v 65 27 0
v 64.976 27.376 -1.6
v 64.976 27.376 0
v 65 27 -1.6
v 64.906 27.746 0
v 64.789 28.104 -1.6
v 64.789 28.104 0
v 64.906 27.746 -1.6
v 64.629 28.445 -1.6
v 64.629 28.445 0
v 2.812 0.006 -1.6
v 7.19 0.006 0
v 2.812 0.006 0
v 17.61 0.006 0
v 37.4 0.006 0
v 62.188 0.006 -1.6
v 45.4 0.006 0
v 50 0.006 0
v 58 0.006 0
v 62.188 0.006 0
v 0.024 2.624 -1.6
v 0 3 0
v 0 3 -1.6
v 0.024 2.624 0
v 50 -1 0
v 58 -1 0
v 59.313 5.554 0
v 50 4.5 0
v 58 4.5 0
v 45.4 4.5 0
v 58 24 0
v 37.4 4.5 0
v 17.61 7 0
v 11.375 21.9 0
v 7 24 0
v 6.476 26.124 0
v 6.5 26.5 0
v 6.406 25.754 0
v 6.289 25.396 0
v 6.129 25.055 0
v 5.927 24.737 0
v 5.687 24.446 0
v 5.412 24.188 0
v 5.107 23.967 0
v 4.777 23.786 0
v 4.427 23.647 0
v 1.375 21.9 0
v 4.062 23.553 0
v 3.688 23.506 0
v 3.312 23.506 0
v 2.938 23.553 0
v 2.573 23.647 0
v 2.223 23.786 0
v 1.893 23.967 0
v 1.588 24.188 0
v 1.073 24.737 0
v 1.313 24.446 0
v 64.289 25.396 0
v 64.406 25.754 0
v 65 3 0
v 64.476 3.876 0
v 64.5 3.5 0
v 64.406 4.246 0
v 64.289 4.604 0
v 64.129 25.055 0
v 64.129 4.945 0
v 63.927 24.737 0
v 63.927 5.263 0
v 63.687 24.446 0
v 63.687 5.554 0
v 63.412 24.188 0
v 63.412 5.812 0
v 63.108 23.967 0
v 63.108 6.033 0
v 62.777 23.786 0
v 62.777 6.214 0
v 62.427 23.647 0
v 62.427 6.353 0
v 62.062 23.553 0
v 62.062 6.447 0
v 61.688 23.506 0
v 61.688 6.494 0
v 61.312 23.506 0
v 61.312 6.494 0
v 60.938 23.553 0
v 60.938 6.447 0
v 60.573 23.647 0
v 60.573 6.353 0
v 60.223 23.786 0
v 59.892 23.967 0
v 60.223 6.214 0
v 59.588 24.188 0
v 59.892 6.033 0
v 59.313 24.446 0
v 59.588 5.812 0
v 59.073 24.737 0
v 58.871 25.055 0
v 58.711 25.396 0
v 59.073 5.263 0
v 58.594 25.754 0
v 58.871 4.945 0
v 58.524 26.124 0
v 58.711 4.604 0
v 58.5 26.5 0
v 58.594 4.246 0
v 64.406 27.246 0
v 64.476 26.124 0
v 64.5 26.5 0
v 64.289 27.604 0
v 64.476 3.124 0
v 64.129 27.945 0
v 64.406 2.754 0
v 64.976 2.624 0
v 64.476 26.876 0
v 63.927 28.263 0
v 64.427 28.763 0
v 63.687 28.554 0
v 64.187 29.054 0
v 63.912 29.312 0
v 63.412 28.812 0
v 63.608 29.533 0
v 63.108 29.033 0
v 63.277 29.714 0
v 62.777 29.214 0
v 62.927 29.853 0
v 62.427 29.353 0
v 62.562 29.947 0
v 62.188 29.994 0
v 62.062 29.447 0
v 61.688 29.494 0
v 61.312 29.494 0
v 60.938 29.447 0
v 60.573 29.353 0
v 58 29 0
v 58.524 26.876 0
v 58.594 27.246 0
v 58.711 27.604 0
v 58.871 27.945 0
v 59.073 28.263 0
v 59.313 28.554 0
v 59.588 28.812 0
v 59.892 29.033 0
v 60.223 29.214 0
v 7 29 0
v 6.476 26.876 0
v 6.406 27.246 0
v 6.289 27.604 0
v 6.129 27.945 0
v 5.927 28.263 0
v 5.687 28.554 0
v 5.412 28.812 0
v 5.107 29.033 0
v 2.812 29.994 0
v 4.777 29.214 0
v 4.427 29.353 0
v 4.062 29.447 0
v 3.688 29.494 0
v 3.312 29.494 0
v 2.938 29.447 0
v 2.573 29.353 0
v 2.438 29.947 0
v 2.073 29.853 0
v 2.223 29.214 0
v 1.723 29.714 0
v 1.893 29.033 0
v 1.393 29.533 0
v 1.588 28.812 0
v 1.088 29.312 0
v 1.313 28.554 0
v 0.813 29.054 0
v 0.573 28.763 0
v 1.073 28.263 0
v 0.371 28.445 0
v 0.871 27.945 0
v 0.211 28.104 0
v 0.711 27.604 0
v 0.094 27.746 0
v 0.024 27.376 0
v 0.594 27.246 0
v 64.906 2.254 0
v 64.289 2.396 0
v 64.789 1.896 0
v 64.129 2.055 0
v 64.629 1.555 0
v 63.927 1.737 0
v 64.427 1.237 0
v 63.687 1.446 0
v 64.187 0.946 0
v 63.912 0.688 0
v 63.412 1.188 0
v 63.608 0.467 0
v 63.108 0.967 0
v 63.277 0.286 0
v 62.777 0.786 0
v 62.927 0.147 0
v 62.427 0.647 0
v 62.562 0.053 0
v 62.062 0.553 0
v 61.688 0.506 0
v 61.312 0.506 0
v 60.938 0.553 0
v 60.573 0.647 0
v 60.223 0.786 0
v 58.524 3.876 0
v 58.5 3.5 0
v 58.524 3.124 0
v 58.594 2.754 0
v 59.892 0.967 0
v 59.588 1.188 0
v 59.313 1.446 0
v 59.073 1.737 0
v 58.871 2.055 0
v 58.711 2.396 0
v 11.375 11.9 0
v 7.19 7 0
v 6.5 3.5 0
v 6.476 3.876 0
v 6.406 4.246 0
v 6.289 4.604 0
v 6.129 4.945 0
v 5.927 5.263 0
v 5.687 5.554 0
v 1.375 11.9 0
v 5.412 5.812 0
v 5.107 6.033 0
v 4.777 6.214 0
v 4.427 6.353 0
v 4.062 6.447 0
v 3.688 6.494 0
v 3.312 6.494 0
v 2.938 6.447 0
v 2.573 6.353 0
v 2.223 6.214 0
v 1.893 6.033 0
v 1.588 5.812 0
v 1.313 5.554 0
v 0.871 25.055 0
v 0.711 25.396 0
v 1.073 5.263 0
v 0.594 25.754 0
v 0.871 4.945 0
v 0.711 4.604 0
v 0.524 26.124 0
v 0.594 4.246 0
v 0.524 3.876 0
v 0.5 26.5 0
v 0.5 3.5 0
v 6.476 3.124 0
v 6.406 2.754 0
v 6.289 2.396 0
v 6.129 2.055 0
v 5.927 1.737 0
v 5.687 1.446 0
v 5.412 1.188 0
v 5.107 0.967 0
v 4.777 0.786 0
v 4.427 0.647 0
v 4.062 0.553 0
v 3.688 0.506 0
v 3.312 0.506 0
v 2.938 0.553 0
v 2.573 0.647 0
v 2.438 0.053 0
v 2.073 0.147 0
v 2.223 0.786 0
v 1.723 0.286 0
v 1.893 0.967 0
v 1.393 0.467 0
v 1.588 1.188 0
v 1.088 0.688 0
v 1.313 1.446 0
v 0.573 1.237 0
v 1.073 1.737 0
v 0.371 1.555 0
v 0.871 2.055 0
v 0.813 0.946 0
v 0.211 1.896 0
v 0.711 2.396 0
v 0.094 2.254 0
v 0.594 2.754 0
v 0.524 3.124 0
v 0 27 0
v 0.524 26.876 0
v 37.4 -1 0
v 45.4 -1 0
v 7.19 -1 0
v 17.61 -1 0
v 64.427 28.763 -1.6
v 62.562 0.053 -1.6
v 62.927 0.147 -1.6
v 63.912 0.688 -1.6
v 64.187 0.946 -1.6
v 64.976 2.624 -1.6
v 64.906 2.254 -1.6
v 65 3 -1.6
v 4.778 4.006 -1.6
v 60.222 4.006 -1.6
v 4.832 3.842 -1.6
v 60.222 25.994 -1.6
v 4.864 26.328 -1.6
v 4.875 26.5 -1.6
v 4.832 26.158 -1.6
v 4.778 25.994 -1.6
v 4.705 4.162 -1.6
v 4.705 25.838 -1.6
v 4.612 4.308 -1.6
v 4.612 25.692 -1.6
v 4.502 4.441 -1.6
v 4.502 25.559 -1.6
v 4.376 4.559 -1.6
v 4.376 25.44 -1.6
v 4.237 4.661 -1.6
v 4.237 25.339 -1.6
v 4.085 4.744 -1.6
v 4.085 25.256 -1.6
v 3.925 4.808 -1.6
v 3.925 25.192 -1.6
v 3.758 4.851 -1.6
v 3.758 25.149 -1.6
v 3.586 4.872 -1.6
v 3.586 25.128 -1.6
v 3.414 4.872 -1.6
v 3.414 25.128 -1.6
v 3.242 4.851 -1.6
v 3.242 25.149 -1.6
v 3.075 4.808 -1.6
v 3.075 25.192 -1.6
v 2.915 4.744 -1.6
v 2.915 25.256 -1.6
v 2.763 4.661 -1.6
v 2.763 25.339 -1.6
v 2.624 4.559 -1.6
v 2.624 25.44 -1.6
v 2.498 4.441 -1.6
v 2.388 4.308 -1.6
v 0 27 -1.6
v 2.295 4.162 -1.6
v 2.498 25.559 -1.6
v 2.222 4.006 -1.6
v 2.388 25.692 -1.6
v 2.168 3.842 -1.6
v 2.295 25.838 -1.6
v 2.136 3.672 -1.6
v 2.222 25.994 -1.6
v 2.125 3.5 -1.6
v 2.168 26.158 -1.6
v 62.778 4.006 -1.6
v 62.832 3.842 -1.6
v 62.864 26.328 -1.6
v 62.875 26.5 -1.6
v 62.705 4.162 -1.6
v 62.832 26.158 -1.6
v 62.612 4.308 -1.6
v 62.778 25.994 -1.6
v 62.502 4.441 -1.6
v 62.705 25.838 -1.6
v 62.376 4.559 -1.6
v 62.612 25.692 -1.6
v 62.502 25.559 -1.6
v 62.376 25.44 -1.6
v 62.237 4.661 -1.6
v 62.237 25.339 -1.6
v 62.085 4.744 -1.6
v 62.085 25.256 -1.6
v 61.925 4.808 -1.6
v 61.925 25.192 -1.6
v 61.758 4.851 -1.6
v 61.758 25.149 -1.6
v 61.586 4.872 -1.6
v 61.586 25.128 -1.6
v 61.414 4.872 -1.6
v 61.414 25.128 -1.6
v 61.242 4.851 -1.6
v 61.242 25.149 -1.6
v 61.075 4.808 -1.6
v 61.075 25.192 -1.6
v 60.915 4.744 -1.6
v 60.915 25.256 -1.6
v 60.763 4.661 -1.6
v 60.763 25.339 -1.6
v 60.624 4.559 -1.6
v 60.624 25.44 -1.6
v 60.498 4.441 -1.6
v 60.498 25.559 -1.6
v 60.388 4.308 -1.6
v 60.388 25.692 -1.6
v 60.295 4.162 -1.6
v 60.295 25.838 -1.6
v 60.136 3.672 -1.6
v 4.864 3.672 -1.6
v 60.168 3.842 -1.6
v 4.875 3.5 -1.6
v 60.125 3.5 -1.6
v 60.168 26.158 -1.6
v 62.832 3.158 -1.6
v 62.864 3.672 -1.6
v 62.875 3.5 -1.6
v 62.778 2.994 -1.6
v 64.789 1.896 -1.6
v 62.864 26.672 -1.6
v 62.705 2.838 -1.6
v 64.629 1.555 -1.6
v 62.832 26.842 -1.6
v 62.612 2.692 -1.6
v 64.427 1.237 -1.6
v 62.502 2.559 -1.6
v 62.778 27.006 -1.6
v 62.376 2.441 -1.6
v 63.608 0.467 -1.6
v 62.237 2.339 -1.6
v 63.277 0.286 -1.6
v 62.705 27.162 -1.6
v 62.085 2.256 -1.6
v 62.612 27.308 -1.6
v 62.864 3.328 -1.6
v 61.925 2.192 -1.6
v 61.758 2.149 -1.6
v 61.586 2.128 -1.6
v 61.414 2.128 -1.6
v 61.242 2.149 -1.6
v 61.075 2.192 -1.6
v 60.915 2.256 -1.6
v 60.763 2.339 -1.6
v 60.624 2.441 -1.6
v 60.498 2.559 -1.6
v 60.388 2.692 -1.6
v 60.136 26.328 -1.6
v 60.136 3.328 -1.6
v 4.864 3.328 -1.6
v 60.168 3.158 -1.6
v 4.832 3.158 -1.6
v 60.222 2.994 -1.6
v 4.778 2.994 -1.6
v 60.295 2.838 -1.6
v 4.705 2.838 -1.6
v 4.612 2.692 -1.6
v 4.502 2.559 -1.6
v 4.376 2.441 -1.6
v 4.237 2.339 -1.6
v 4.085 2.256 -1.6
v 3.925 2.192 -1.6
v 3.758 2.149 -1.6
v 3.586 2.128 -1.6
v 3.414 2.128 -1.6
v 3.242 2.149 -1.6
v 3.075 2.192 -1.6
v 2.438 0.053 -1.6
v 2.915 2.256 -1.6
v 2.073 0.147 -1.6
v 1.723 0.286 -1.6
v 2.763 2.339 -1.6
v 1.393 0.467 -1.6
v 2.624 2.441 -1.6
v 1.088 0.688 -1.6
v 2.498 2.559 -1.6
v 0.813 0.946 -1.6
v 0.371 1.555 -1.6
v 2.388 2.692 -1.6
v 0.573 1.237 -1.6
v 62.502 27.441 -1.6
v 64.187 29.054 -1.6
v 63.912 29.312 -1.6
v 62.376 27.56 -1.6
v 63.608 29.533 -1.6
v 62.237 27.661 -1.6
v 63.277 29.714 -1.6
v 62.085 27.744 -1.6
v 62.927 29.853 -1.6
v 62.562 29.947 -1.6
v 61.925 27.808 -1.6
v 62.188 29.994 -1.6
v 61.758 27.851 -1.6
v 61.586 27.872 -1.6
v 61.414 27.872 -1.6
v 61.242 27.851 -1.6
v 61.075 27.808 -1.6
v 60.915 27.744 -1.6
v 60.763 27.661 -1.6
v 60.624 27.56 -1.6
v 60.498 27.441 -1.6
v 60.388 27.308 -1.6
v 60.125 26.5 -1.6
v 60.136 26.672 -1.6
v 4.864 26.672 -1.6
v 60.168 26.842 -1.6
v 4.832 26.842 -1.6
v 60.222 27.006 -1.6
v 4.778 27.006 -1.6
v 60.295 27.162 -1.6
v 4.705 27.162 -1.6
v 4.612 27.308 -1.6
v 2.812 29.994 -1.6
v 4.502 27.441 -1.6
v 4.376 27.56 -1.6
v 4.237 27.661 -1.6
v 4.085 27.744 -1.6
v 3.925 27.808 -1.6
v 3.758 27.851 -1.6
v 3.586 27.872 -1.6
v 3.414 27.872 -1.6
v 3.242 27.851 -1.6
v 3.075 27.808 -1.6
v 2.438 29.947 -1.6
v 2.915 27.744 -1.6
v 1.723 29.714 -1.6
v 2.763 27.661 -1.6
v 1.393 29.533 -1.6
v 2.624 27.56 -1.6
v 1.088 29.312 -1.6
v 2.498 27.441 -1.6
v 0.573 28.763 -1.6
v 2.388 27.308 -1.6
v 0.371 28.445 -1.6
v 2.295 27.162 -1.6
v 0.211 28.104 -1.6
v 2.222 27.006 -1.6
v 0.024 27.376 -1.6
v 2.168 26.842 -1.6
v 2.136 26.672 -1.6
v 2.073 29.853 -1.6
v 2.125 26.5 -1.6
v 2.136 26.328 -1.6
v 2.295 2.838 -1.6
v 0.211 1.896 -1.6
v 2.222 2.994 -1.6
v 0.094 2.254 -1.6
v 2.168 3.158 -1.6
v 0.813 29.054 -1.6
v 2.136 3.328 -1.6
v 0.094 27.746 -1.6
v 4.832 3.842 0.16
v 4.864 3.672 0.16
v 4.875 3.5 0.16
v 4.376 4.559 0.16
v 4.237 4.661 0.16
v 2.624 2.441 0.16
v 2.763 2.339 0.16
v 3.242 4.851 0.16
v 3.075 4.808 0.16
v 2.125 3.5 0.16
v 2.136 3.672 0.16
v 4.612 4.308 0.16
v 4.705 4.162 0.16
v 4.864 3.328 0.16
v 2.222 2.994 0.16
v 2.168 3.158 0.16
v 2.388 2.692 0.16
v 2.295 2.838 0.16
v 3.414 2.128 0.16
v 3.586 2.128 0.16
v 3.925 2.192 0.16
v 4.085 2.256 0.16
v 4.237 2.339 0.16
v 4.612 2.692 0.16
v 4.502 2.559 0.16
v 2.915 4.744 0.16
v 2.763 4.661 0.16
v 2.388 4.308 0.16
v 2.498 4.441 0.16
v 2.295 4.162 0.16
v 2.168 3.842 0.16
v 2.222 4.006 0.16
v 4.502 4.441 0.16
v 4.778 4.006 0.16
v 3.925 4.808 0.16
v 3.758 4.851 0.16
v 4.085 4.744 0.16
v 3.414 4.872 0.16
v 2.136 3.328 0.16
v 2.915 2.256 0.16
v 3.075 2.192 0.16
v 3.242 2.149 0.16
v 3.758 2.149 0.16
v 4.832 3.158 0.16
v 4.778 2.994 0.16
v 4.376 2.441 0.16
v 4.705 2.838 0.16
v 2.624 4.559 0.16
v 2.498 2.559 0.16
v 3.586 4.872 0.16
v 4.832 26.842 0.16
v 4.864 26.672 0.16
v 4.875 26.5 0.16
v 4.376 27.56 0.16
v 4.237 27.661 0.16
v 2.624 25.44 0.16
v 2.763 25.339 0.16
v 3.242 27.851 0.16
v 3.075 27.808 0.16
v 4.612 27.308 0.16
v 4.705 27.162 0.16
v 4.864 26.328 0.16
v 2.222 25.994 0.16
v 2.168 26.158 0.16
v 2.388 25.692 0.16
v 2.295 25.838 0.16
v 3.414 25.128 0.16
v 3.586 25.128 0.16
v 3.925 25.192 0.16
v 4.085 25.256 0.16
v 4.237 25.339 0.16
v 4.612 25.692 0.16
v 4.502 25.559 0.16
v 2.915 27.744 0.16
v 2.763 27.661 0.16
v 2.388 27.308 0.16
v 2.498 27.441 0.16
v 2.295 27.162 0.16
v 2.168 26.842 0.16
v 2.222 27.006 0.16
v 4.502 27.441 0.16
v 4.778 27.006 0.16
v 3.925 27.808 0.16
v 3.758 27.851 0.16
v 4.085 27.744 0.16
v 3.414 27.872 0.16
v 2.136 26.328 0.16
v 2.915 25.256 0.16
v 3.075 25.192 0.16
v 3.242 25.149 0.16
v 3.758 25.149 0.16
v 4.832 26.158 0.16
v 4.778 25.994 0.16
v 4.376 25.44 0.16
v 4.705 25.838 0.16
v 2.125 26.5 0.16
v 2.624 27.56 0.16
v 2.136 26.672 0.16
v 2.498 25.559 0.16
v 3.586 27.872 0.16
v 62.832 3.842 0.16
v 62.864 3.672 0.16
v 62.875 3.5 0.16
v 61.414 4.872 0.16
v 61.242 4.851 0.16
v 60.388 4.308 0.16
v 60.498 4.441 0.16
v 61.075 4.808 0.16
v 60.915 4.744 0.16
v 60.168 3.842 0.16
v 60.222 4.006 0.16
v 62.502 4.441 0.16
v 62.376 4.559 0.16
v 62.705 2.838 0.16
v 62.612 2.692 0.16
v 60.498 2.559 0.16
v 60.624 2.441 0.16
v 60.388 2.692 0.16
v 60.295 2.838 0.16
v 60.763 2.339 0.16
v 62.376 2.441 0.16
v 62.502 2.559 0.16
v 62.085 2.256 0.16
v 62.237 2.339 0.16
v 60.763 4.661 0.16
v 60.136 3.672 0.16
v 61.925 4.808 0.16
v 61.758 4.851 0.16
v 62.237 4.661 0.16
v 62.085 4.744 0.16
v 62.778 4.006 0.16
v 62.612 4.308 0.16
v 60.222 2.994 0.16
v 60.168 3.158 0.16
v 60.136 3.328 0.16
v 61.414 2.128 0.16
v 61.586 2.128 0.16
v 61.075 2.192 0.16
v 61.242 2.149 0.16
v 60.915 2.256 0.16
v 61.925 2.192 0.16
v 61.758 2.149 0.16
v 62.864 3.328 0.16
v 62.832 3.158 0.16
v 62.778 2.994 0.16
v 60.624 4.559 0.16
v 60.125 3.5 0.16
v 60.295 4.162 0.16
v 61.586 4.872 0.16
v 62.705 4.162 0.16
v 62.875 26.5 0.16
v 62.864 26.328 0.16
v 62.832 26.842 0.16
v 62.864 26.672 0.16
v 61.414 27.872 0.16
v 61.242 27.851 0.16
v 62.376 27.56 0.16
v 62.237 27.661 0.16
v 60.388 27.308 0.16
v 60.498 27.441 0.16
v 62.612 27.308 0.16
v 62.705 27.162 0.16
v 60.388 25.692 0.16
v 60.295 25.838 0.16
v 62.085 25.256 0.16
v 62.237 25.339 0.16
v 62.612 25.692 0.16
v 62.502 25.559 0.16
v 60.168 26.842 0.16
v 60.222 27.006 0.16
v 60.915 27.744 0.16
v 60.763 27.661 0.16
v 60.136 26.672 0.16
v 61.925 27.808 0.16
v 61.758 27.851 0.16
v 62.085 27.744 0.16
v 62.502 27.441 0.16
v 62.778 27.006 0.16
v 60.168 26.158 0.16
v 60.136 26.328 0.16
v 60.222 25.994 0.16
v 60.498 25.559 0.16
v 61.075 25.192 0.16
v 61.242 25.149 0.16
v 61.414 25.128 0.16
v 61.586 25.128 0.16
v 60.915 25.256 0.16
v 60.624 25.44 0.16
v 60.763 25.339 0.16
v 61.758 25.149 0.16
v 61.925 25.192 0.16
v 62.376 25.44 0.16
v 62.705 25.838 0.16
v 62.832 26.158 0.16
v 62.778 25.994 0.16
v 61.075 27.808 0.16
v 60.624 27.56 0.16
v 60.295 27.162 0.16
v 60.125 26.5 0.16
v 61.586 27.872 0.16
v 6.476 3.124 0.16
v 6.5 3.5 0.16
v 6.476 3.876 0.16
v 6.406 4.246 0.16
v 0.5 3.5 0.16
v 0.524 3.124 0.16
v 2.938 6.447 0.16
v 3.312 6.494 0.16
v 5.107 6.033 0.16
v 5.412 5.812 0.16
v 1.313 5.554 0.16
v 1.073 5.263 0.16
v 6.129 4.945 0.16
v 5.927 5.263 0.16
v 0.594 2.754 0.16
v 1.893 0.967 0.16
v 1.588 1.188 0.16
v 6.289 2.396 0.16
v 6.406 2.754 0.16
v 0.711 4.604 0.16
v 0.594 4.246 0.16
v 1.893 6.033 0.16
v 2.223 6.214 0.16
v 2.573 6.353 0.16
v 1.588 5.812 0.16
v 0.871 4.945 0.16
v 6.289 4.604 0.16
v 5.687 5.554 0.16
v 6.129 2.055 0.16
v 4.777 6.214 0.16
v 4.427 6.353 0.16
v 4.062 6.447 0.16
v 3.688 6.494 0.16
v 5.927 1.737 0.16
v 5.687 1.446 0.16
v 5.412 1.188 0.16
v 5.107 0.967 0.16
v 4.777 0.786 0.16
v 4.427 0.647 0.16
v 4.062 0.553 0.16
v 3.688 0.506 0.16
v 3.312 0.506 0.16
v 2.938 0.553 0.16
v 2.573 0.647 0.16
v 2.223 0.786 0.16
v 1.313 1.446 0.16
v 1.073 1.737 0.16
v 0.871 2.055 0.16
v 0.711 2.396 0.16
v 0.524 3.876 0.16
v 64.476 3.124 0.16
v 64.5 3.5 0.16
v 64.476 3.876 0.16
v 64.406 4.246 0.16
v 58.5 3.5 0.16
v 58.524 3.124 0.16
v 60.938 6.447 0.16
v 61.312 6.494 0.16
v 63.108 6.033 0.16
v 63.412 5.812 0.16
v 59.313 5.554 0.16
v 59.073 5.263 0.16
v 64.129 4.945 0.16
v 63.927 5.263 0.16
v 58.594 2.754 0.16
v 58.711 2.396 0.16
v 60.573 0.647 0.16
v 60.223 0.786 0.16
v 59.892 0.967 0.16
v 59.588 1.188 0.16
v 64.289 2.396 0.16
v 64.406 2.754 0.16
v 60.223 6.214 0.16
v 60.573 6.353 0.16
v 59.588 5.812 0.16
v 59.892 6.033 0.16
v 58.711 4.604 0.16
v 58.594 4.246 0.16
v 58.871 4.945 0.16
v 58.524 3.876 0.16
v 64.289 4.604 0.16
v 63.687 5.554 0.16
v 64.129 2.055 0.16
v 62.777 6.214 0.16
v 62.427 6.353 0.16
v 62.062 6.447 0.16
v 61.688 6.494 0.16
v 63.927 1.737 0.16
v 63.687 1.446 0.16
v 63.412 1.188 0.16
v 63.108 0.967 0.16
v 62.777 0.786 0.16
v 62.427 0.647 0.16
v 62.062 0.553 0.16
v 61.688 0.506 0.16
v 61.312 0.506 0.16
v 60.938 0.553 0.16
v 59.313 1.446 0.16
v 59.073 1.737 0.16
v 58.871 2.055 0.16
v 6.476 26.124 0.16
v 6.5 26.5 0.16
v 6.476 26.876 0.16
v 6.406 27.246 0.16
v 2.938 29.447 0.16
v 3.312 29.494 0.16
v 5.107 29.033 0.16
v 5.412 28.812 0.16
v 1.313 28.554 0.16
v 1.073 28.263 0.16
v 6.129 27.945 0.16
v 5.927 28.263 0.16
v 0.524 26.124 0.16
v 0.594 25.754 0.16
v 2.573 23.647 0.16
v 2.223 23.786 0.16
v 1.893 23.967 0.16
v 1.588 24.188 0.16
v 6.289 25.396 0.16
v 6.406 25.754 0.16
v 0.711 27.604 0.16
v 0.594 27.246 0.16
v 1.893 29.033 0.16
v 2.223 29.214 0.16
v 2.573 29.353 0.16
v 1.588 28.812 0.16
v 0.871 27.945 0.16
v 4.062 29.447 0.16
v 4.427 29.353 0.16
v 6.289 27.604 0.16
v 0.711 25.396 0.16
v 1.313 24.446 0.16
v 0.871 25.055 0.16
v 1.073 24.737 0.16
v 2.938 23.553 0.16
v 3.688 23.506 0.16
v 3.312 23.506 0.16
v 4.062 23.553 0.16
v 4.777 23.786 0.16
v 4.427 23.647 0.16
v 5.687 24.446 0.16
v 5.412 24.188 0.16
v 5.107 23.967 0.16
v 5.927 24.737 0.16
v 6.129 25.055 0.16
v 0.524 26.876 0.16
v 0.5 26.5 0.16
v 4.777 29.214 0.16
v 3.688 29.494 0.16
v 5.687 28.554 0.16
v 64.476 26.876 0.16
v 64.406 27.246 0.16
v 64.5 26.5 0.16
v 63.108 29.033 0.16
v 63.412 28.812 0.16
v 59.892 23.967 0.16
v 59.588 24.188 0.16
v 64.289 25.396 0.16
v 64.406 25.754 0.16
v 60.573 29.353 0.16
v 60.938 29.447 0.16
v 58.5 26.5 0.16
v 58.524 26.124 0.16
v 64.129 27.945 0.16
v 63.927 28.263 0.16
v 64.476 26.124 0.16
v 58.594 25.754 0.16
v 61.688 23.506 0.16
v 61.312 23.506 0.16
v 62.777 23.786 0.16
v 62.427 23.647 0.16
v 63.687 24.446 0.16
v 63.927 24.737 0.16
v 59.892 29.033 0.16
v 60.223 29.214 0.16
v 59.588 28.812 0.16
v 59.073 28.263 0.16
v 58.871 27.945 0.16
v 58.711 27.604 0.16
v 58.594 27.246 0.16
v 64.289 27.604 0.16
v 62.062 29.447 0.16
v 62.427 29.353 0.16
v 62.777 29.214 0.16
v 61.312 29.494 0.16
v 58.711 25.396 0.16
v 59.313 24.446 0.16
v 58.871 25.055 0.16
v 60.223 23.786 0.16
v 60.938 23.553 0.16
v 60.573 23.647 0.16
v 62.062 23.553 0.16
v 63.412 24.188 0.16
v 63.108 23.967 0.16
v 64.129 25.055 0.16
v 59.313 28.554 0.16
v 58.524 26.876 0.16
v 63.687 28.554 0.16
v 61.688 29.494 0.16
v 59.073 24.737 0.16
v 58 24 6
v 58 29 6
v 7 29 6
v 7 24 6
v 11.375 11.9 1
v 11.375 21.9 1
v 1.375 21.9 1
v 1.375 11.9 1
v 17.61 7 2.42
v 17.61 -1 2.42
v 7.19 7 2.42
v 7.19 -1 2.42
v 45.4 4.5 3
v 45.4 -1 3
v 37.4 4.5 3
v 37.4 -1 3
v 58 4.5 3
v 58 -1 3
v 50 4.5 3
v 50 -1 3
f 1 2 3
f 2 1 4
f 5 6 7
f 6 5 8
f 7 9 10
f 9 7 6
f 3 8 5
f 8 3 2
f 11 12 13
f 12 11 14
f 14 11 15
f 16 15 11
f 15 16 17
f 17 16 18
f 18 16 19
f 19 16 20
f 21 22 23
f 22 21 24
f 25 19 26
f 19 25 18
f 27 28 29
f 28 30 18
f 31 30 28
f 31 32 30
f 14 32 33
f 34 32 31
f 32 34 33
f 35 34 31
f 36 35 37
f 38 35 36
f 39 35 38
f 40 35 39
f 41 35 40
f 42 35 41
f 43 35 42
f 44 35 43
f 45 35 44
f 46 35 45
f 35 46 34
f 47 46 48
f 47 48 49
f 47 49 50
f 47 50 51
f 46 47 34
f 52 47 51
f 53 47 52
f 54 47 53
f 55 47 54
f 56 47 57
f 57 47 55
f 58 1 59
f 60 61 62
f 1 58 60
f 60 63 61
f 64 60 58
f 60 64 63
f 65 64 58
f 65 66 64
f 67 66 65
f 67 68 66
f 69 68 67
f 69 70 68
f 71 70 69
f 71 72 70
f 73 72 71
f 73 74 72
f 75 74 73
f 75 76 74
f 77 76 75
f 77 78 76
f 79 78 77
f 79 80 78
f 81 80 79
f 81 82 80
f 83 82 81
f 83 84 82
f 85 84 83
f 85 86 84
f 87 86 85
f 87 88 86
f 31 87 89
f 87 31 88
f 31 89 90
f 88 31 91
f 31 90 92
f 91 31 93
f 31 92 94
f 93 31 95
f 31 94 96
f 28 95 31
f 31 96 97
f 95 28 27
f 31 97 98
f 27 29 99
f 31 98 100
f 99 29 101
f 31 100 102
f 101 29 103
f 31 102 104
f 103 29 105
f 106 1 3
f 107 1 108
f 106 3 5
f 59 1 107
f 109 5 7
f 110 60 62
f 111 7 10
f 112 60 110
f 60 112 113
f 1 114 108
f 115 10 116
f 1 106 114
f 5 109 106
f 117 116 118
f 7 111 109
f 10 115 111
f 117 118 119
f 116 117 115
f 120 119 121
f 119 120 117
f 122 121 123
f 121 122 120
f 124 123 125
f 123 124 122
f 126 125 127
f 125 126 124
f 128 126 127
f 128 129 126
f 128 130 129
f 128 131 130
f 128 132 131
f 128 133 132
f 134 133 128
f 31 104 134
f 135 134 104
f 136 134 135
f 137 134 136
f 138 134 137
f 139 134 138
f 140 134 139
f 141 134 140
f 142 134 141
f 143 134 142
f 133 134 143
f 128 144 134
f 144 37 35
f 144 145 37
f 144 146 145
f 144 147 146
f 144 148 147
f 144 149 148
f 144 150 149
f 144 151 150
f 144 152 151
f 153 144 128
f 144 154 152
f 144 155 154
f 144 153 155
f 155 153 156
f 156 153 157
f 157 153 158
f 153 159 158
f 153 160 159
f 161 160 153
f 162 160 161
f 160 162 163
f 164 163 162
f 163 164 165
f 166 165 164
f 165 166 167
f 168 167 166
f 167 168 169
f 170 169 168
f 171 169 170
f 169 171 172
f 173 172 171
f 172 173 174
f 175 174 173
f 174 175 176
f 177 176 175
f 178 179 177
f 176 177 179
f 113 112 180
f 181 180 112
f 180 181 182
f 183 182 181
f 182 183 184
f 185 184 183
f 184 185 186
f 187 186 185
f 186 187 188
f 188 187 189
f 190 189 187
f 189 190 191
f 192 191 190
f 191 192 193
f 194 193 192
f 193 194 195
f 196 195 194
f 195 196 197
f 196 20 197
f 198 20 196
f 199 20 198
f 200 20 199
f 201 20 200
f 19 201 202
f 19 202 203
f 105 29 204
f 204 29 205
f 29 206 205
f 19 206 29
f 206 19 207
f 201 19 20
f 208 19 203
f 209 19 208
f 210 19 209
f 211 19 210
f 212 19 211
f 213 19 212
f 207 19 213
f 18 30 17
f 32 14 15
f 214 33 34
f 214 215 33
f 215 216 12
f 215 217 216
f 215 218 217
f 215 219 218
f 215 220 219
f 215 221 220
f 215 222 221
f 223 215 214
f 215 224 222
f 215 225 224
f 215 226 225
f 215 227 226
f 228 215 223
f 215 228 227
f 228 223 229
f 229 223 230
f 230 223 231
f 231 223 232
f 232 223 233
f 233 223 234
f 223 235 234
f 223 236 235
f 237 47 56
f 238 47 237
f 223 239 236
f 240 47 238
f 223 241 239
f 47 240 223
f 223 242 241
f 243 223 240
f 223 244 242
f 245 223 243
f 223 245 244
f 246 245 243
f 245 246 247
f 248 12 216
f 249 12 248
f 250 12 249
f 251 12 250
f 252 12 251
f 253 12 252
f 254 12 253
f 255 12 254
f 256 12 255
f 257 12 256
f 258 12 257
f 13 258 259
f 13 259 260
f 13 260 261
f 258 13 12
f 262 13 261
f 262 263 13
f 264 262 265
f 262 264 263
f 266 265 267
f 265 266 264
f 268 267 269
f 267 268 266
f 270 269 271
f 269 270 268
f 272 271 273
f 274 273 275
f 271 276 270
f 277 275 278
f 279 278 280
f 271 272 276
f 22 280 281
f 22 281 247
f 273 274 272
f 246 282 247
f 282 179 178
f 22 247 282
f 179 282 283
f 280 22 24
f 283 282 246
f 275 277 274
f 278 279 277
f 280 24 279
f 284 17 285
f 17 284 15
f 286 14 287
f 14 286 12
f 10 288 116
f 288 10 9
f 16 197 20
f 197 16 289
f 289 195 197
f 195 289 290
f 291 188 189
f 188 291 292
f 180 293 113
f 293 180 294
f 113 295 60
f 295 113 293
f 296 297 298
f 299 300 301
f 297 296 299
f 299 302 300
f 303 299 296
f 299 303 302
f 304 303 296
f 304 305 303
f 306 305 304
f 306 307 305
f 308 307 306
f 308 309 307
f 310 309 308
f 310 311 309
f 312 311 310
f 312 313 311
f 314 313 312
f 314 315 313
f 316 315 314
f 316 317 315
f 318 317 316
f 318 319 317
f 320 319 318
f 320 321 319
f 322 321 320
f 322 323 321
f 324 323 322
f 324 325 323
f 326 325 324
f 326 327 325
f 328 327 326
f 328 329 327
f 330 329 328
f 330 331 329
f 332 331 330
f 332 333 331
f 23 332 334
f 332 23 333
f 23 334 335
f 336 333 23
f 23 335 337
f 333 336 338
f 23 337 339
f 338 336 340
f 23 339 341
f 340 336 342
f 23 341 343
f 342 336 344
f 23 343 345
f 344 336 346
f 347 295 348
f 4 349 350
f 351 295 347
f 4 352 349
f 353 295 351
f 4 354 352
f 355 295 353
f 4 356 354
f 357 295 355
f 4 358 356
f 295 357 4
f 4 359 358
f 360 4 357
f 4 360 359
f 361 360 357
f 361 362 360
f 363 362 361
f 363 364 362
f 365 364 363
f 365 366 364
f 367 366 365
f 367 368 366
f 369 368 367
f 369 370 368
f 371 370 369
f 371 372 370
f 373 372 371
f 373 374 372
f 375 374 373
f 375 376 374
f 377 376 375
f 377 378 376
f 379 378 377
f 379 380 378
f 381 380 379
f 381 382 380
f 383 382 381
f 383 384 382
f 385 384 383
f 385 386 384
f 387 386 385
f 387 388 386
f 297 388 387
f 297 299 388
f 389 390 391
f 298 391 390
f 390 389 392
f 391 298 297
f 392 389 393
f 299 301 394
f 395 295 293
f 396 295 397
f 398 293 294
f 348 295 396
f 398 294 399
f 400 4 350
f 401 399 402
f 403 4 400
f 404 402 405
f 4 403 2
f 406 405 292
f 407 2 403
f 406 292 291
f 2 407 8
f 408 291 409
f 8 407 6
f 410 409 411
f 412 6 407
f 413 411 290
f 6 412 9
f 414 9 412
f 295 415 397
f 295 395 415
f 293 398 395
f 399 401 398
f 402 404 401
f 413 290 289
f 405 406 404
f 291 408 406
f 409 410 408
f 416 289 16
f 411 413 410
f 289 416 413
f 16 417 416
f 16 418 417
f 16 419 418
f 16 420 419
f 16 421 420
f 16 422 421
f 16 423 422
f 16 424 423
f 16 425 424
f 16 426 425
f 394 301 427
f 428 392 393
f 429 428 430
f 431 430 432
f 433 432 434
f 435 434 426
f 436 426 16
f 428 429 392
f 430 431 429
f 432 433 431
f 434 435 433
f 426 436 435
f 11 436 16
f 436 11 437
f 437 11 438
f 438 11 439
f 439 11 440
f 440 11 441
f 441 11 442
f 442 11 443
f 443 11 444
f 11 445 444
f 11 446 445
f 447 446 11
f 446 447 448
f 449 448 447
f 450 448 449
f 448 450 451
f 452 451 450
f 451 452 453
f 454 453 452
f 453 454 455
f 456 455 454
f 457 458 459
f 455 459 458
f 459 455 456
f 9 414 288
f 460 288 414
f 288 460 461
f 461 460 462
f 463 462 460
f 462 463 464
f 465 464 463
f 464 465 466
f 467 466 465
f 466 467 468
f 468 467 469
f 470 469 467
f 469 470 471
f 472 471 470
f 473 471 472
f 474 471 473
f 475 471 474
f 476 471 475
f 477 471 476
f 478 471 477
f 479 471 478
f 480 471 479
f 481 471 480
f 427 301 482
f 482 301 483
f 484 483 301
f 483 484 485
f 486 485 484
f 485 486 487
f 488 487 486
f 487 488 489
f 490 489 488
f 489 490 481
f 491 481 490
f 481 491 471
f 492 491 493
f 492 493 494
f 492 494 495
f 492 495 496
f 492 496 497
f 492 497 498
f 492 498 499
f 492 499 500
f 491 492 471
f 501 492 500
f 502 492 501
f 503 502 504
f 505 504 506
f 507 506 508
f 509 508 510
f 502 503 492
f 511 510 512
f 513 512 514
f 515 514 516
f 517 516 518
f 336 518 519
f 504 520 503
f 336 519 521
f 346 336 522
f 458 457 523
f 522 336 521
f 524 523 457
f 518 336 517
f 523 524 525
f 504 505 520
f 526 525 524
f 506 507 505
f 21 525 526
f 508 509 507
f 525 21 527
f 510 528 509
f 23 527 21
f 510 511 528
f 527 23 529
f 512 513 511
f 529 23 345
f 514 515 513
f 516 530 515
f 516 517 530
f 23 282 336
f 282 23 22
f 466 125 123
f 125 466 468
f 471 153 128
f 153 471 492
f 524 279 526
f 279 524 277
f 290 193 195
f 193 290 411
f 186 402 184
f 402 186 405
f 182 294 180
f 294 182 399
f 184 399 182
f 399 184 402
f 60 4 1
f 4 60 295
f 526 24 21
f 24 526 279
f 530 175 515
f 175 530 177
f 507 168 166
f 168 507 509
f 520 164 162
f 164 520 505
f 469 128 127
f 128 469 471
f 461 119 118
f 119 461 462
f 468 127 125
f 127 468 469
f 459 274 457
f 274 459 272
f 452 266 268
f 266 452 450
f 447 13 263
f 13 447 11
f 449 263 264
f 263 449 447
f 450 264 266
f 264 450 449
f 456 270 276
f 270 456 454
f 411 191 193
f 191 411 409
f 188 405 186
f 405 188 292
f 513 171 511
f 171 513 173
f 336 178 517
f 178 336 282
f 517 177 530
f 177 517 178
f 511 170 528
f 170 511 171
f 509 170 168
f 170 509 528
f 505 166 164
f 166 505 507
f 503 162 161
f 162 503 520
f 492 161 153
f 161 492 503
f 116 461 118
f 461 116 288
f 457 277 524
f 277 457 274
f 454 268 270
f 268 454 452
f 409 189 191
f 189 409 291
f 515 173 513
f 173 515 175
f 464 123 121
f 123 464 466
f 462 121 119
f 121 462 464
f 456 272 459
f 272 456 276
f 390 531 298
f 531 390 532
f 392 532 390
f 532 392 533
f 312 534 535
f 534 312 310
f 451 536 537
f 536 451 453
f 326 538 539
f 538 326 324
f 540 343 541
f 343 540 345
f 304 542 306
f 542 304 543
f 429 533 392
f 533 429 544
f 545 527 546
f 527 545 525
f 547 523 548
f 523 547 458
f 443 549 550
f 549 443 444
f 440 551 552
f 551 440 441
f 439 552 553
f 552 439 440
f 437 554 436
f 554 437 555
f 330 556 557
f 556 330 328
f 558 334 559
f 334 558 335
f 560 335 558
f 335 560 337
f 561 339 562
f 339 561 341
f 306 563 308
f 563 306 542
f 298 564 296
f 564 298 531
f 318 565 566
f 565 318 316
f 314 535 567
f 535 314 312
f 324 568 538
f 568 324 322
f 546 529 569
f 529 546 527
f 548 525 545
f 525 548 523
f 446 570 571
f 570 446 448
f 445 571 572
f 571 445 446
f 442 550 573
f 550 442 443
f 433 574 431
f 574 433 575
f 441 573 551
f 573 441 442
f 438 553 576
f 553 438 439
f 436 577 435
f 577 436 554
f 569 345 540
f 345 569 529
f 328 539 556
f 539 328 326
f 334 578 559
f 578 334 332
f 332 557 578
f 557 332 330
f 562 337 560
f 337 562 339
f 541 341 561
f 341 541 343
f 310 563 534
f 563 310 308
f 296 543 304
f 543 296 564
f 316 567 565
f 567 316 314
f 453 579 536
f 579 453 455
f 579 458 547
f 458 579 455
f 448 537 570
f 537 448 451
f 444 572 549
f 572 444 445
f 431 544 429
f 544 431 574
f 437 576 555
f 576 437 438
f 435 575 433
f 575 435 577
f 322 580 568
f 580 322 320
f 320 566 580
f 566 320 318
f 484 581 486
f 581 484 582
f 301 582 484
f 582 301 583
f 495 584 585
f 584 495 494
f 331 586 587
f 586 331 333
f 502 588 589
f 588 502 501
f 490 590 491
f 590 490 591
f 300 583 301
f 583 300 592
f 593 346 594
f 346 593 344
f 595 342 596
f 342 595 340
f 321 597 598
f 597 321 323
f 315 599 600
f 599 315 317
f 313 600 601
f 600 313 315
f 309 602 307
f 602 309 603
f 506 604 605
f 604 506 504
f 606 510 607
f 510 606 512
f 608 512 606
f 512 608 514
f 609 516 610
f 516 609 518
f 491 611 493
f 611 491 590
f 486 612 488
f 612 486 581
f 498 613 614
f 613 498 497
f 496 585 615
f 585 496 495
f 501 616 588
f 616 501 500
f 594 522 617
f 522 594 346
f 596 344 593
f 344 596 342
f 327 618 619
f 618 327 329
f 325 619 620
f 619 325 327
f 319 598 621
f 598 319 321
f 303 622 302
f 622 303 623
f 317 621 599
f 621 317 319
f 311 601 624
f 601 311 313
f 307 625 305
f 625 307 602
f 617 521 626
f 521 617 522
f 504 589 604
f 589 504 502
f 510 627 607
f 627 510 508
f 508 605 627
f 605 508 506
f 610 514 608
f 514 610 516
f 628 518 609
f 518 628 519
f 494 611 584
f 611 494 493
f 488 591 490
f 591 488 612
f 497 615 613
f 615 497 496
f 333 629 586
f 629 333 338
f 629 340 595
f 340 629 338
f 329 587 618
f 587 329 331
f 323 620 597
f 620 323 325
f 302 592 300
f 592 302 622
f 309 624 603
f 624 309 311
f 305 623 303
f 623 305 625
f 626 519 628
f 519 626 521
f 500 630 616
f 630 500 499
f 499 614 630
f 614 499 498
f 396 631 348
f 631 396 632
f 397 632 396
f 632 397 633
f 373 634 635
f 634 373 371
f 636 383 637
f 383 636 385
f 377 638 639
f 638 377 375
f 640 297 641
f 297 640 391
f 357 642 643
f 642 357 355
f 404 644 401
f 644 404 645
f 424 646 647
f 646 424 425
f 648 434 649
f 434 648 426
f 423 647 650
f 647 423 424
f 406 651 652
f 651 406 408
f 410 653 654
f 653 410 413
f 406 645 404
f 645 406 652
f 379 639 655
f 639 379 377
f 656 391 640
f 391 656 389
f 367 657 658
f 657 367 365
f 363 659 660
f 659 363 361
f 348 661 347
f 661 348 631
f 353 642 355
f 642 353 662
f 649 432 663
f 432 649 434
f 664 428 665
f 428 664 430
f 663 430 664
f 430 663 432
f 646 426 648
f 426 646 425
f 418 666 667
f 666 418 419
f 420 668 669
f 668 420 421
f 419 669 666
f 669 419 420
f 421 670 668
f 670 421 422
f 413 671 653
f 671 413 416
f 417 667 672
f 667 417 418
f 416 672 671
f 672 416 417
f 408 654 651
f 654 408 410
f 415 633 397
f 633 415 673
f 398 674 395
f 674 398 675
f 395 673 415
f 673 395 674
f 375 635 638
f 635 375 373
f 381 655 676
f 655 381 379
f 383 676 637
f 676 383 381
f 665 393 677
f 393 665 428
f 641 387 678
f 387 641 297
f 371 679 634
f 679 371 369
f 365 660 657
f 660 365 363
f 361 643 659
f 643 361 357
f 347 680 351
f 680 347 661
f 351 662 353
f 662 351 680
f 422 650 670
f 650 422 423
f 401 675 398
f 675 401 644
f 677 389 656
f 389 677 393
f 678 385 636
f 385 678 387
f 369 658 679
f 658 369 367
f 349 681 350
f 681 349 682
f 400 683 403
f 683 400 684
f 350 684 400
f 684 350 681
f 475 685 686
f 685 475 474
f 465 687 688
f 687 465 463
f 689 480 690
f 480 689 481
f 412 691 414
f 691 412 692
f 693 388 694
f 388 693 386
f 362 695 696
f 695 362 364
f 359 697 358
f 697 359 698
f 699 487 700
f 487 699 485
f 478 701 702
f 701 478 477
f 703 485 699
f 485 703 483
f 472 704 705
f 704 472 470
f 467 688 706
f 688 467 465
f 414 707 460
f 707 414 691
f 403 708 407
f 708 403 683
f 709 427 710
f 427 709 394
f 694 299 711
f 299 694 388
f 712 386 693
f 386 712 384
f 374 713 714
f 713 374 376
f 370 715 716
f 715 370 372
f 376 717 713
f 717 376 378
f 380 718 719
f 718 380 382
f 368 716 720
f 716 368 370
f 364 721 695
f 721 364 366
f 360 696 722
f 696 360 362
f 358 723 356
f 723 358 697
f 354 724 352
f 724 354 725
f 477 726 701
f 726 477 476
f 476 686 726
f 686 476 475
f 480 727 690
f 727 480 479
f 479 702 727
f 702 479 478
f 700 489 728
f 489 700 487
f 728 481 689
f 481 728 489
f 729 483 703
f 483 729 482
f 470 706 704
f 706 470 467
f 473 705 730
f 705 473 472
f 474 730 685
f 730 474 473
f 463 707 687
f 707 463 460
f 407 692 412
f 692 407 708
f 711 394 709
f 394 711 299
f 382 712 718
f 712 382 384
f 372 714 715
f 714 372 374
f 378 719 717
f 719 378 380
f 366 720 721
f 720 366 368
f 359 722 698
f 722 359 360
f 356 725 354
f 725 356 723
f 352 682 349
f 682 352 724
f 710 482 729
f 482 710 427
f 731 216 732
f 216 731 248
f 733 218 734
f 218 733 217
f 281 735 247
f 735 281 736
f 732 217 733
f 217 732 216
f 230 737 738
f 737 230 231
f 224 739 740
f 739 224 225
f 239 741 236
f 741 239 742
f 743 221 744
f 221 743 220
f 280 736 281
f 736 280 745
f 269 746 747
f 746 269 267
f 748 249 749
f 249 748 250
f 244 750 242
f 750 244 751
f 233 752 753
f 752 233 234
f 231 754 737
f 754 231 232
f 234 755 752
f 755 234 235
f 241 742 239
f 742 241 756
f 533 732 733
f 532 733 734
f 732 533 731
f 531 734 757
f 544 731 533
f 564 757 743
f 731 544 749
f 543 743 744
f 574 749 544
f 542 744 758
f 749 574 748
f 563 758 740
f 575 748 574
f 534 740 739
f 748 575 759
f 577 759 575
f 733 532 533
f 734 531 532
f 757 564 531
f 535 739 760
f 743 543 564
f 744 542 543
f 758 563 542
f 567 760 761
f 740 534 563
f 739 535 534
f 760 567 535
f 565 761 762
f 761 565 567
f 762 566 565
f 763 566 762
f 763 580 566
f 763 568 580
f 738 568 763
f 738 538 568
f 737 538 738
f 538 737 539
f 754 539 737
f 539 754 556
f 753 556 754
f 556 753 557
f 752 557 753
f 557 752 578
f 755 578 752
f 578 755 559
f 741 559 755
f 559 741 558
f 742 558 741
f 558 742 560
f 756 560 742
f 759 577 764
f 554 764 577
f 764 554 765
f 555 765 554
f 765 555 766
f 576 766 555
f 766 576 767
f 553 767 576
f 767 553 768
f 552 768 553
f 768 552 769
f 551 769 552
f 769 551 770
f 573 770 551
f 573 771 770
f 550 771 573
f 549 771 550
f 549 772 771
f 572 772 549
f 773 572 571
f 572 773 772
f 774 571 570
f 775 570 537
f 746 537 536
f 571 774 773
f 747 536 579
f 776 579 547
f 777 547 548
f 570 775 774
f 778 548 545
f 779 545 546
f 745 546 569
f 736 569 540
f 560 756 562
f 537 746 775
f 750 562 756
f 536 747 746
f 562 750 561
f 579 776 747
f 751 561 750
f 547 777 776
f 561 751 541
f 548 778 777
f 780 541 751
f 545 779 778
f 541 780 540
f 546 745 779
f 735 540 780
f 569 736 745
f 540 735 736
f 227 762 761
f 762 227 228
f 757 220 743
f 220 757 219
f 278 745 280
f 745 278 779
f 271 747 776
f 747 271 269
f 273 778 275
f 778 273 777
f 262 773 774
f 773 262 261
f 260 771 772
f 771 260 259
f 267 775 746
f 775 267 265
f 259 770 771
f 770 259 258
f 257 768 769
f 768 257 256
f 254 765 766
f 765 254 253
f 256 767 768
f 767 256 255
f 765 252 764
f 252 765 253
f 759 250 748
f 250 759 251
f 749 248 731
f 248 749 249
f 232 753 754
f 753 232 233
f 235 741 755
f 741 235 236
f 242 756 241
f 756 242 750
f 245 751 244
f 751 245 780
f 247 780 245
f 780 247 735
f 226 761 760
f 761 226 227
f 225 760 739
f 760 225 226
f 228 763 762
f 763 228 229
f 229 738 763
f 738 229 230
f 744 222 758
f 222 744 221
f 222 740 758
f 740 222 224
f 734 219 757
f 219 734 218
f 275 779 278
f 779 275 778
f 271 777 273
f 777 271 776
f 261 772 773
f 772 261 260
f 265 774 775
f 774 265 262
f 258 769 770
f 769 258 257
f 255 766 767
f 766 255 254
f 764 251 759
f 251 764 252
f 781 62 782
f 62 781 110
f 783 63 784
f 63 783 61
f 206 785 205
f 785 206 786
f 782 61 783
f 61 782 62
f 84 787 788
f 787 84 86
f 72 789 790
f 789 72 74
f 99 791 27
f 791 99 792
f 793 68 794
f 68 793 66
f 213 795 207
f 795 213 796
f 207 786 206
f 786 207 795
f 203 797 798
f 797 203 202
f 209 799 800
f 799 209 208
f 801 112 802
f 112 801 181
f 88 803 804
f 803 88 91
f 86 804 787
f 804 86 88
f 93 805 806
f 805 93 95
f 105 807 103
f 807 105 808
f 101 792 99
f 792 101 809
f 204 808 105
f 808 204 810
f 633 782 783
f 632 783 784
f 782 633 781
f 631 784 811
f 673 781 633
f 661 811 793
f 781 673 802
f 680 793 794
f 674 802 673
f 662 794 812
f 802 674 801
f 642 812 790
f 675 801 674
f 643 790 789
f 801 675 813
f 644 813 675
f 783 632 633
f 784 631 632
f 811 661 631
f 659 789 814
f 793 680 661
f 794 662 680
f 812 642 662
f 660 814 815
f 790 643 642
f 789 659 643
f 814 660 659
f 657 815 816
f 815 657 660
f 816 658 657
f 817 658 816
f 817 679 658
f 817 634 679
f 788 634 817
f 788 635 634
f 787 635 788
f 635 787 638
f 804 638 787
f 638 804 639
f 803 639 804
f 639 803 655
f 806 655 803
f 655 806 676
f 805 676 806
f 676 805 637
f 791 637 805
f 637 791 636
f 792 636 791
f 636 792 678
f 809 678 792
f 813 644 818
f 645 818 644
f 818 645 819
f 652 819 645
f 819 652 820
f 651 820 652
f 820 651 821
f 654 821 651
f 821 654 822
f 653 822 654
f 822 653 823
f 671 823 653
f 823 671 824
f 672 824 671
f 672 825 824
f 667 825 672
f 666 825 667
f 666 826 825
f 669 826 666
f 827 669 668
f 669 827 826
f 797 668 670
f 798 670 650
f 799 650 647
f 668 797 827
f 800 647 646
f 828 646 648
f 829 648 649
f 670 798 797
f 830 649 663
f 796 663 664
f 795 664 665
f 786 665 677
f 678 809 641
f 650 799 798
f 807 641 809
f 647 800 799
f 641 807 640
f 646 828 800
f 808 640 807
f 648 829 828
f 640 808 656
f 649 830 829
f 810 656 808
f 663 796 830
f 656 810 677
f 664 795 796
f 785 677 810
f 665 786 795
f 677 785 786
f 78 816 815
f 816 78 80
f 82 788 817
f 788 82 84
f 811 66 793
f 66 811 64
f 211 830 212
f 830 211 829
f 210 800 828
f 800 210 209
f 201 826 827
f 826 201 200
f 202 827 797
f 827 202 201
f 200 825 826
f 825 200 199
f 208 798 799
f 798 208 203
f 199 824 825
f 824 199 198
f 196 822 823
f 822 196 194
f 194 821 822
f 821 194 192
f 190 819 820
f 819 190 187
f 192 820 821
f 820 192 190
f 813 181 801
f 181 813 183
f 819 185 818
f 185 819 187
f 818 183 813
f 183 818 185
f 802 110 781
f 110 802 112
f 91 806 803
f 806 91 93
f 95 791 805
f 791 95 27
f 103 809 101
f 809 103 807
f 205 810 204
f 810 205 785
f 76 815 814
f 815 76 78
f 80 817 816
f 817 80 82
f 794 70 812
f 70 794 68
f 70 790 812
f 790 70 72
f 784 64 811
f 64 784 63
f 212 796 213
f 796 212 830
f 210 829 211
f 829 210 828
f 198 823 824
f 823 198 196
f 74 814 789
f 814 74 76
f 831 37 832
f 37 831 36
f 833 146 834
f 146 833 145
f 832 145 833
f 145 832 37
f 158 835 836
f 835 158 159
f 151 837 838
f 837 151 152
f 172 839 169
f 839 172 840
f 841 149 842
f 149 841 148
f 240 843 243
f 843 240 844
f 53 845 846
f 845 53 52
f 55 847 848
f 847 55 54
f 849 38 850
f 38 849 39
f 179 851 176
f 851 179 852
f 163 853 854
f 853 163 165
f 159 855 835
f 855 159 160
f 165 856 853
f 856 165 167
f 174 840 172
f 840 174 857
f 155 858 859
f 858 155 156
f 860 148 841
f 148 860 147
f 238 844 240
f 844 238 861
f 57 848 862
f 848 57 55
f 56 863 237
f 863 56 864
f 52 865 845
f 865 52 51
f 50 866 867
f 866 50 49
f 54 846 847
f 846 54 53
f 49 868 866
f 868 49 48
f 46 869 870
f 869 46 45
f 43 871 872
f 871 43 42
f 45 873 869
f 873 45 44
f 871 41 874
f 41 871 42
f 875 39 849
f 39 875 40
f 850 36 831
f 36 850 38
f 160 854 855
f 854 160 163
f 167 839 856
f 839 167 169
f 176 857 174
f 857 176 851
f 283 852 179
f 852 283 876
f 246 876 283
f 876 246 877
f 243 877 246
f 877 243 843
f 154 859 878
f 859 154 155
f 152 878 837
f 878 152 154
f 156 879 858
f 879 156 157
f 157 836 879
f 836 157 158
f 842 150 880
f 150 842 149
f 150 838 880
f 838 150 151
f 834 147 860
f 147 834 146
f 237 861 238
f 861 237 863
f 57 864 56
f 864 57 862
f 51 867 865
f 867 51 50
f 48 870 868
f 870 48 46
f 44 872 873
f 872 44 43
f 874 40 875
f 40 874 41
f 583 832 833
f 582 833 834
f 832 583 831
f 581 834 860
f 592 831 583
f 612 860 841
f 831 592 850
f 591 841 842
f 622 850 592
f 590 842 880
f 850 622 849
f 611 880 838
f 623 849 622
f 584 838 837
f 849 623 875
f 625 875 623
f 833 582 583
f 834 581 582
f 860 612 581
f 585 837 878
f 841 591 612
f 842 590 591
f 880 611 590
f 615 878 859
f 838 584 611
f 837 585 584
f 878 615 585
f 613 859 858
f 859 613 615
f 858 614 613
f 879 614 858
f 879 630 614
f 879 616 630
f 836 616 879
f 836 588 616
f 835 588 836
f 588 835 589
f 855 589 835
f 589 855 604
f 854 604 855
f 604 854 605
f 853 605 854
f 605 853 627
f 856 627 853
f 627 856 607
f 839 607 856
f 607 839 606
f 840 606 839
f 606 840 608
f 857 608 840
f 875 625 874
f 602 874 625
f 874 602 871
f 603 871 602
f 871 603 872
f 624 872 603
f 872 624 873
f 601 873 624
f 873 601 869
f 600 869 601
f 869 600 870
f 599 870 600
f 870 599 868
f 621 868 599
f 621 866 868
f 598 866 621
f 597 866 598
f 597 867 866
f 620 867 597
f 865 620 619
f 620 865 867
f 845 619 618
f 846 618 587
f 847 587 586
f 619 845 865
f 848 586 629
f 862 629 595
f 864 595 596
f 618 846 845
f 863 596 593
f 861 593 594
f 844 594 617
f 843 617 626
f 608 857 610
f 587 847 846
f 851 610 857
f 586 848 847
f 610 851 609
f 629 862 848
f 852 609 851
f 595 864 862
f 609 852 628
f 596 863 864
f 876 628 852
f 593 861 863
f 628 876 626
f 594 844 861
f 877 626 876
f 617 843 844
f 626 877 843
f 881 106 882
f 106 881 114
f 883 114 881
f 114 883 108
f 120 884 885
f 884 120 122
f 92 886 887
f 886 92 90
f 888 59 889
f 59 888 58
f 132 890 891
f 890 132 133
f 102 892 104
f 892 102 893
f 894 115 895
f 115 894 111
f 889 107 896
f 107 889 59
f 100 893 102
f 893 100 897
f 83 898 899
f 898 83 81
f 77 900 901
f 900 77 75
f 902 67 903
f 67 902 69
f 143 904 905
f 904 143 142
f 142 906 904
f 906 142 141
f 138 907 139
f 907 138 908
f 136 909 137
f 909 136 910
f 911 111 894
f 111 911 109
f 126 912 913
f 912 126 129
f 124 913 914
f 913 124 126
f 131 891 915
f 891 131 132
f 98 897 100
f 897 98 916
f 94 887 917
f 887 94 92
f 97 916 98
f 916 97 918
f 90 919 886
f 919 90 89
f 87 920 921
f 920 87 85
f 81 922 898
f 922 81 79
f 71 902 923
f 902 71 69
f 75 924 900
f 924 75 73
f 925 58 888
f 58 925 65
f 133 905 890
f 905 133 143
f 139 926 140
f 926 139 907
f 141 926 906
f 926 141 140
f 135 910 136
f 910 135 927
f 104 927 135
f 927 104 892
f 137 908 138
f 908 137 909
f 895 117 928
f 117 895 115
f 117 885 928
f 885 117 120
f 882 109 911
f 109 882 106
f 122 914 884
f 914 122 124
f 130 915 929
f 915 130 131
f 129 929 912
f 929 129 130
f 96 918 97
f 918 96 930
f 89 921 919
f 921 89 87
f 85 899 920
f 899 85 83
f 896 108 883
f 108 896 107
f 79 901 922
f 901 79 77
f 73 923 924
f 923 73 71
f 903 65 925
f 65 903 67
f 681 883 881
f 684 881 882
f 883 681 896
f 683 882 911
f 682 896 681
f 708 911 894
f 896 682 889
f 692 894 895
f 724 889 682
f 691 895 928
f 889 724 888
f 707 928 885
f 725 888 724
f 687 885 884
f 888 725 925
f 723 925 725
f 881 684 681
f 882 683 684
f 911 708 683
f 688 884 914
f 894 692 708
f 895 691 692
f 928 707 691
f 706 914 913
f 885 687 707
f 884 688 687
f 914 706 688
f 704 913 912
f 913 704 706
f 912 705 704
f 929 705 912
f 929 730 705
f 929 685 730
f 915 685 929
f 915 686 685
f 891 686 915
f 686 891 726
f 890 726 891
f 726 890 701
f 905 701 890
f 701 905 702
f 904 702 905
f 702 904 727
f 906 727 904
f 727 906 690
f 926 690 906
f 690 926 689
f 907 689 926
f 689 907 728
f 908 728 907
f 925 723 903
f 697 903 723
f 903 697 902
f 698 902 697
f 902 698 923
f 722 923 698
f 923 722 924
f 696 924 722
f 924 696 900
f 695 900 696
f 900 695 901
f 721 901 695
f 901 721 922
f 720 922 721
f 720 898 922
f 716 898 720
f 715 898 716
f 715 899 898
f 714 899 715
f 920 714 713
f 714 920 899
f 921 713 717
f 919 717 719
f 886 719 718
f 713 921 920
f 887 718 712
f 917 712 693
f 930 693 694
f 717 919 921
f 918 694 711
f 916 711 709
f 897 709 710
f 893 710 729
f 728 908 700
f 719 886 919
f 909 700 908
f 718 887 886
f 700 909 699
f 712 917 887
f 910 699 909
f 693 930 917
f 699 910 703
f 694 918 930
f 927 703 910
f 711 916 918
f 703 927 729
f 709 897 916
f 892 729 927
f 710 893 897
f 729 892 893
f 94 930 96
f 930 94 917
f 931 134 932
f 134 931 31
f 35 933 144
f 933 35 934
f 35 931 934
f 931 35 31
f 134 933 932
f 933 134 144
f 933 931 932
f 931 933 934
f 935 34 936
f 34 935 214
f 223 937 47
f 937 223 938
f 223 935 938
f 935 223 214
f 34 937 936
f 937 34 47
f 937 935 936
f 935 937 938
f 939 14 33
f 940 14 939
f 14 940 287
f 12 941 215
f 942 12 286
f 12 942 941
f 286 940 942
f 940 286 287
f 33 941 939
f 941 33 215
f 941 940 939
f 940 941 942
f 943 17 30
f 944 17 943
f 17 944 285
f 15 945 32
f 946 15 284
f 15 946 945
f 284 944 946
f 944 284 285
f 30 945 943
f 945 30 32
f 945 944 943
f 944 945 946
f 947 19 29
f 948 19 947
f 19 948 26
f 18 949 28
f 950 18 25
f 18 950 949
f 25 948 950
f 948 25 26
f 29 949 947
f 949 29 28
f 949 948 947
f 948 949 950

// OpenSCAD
$fn=50;

echo(version=version());

// simple 2D -> 3D extrusion of a rectangle
height = 30;
width = 65;
depth = 1.6;
corner_radius = 3.0;
hole_offset = 3.5;
hole_diameter = 2.75;
hole_to_hole = 58;
difference(){
color("green")
    translate([corner_radius, corner_radius, -depth])
    linear_extrude(height = depth)
    minkowski(){
        square([width-(2*corner_radius), height-(2*corner_radius)]);
        circle(corner_radius);
    }
    
    translate([hole_offset, hole_offset, -2*depth])
    linear_extrude(height = 3*depth)
    circle(hole_diameter/2);

    translate([hole_offset, height-hole_offset, -2*depth])
    linear_extrude(height = 3*depth)
    circle(hole_diameter/2);

    translate([hole_to_hole+hole_offset, hole_offset, -2*depth])
    linear_extrude(height = 3*depth)
    circle(hole_diameter/2);

    translate([hole_to_hole+hole_offset, height-hole_offset, -2*depth])
    linear_extrude(height = 3*depth)
    circle(hole_diameter/2);

}

difference(){
    color("gold")
    translate([hole_offset, hole_offset, -depth])
    linear_extrude(height = 1.1*depth)
    circle(6/2);

    translate([hole_offset, hole_offset, -2*depth])
    linear_extrude(height = 3*depth)
    circle(hole_diameter/2);
}

difference(){
    color("gold")
    translate([58+hole_offset, hole_offset, -depth])
    linear_extrude(height = 1.1*depth)
    circle(6/2);

    translate([58+hole_offset, hole_offset, -2*depth])
    linear_extrude(height = 3*depth)
    circle(hole_diameter/2);
}

difference(){
    color("gold")
    translate([hole_offset, 23+hole_offset, -depth])
    linear_extrude(height = 1.1*depth)
    circle(6/2);

    translate([hole_offset, 23+hole_offset, -2*depth])
    linear_extrude(height = 3*depth)
    circle(hole_diameter/2);
}

difference(){
    color("gold")
    translate([58+hole_offset, 23+hole_offset, -depth])
    linear_extrude(height = 1.1*depth)
    circle(6/2);

    translate([58+hole_offset, 23+hole_offset, -2*depth])
    linear_extrude(height = 3*depth)
    circle(hole_diameter/2);
}


// GPIO
gpio_height = 5;
gpio_width = 51;
gpio_to_hole_offset = 29;
color("gray")
    translate([hole_offset+gpio_to_hole_offset-gpio_width/2, height-hole_offset-gpio_height/2])
    linear_extrude(height = 6)
    square([gpio_width, gpio_height], center = false);


// Micro SD Card Slot
micro_sd_height = 10;
micro_sd_width = 10;
micro_sd_protrusion = -1;
color("gray")
    translate([2.75/2, 16.9-micro_sd_height/2])
    linear_extrude(height = 1)
    square([micro_sd_width, micro_sd_height], center = false);


// HDMI
hdmi_height = 8;
hdmi_width = 10.42;
hdmi_protrusion = 1;
color("gray")
    translate([12.4-hdmi_width/2, -hdmi_protrusion, ])
    linear_extrude(height = 2.42)
    square([hdmi_width, hdmi_height], center = false);


// USB 0
usb_0_height = 5.5;
usb_0_width = 8;
usb_0_protrusion = 1;
color("gray")
    translate([41.4-usb_0_width/2, -usb_0_protrusion, 0])
    linear_extrude(height = 3)
    square([usb_0_width, usb_0_height], center = false);

// USB 1
usb_1_height = usb_0_height;
usb_1_width = usb_0_width;
usb_1_protrusion = usb_0_protrusion;
color("gray")
    translate([54-usb_1_width/2, -usb_1_protrusion, 0])
    linear_extrude(height = 3)
    square([usb_1_width, usb_1_height], center = false);
